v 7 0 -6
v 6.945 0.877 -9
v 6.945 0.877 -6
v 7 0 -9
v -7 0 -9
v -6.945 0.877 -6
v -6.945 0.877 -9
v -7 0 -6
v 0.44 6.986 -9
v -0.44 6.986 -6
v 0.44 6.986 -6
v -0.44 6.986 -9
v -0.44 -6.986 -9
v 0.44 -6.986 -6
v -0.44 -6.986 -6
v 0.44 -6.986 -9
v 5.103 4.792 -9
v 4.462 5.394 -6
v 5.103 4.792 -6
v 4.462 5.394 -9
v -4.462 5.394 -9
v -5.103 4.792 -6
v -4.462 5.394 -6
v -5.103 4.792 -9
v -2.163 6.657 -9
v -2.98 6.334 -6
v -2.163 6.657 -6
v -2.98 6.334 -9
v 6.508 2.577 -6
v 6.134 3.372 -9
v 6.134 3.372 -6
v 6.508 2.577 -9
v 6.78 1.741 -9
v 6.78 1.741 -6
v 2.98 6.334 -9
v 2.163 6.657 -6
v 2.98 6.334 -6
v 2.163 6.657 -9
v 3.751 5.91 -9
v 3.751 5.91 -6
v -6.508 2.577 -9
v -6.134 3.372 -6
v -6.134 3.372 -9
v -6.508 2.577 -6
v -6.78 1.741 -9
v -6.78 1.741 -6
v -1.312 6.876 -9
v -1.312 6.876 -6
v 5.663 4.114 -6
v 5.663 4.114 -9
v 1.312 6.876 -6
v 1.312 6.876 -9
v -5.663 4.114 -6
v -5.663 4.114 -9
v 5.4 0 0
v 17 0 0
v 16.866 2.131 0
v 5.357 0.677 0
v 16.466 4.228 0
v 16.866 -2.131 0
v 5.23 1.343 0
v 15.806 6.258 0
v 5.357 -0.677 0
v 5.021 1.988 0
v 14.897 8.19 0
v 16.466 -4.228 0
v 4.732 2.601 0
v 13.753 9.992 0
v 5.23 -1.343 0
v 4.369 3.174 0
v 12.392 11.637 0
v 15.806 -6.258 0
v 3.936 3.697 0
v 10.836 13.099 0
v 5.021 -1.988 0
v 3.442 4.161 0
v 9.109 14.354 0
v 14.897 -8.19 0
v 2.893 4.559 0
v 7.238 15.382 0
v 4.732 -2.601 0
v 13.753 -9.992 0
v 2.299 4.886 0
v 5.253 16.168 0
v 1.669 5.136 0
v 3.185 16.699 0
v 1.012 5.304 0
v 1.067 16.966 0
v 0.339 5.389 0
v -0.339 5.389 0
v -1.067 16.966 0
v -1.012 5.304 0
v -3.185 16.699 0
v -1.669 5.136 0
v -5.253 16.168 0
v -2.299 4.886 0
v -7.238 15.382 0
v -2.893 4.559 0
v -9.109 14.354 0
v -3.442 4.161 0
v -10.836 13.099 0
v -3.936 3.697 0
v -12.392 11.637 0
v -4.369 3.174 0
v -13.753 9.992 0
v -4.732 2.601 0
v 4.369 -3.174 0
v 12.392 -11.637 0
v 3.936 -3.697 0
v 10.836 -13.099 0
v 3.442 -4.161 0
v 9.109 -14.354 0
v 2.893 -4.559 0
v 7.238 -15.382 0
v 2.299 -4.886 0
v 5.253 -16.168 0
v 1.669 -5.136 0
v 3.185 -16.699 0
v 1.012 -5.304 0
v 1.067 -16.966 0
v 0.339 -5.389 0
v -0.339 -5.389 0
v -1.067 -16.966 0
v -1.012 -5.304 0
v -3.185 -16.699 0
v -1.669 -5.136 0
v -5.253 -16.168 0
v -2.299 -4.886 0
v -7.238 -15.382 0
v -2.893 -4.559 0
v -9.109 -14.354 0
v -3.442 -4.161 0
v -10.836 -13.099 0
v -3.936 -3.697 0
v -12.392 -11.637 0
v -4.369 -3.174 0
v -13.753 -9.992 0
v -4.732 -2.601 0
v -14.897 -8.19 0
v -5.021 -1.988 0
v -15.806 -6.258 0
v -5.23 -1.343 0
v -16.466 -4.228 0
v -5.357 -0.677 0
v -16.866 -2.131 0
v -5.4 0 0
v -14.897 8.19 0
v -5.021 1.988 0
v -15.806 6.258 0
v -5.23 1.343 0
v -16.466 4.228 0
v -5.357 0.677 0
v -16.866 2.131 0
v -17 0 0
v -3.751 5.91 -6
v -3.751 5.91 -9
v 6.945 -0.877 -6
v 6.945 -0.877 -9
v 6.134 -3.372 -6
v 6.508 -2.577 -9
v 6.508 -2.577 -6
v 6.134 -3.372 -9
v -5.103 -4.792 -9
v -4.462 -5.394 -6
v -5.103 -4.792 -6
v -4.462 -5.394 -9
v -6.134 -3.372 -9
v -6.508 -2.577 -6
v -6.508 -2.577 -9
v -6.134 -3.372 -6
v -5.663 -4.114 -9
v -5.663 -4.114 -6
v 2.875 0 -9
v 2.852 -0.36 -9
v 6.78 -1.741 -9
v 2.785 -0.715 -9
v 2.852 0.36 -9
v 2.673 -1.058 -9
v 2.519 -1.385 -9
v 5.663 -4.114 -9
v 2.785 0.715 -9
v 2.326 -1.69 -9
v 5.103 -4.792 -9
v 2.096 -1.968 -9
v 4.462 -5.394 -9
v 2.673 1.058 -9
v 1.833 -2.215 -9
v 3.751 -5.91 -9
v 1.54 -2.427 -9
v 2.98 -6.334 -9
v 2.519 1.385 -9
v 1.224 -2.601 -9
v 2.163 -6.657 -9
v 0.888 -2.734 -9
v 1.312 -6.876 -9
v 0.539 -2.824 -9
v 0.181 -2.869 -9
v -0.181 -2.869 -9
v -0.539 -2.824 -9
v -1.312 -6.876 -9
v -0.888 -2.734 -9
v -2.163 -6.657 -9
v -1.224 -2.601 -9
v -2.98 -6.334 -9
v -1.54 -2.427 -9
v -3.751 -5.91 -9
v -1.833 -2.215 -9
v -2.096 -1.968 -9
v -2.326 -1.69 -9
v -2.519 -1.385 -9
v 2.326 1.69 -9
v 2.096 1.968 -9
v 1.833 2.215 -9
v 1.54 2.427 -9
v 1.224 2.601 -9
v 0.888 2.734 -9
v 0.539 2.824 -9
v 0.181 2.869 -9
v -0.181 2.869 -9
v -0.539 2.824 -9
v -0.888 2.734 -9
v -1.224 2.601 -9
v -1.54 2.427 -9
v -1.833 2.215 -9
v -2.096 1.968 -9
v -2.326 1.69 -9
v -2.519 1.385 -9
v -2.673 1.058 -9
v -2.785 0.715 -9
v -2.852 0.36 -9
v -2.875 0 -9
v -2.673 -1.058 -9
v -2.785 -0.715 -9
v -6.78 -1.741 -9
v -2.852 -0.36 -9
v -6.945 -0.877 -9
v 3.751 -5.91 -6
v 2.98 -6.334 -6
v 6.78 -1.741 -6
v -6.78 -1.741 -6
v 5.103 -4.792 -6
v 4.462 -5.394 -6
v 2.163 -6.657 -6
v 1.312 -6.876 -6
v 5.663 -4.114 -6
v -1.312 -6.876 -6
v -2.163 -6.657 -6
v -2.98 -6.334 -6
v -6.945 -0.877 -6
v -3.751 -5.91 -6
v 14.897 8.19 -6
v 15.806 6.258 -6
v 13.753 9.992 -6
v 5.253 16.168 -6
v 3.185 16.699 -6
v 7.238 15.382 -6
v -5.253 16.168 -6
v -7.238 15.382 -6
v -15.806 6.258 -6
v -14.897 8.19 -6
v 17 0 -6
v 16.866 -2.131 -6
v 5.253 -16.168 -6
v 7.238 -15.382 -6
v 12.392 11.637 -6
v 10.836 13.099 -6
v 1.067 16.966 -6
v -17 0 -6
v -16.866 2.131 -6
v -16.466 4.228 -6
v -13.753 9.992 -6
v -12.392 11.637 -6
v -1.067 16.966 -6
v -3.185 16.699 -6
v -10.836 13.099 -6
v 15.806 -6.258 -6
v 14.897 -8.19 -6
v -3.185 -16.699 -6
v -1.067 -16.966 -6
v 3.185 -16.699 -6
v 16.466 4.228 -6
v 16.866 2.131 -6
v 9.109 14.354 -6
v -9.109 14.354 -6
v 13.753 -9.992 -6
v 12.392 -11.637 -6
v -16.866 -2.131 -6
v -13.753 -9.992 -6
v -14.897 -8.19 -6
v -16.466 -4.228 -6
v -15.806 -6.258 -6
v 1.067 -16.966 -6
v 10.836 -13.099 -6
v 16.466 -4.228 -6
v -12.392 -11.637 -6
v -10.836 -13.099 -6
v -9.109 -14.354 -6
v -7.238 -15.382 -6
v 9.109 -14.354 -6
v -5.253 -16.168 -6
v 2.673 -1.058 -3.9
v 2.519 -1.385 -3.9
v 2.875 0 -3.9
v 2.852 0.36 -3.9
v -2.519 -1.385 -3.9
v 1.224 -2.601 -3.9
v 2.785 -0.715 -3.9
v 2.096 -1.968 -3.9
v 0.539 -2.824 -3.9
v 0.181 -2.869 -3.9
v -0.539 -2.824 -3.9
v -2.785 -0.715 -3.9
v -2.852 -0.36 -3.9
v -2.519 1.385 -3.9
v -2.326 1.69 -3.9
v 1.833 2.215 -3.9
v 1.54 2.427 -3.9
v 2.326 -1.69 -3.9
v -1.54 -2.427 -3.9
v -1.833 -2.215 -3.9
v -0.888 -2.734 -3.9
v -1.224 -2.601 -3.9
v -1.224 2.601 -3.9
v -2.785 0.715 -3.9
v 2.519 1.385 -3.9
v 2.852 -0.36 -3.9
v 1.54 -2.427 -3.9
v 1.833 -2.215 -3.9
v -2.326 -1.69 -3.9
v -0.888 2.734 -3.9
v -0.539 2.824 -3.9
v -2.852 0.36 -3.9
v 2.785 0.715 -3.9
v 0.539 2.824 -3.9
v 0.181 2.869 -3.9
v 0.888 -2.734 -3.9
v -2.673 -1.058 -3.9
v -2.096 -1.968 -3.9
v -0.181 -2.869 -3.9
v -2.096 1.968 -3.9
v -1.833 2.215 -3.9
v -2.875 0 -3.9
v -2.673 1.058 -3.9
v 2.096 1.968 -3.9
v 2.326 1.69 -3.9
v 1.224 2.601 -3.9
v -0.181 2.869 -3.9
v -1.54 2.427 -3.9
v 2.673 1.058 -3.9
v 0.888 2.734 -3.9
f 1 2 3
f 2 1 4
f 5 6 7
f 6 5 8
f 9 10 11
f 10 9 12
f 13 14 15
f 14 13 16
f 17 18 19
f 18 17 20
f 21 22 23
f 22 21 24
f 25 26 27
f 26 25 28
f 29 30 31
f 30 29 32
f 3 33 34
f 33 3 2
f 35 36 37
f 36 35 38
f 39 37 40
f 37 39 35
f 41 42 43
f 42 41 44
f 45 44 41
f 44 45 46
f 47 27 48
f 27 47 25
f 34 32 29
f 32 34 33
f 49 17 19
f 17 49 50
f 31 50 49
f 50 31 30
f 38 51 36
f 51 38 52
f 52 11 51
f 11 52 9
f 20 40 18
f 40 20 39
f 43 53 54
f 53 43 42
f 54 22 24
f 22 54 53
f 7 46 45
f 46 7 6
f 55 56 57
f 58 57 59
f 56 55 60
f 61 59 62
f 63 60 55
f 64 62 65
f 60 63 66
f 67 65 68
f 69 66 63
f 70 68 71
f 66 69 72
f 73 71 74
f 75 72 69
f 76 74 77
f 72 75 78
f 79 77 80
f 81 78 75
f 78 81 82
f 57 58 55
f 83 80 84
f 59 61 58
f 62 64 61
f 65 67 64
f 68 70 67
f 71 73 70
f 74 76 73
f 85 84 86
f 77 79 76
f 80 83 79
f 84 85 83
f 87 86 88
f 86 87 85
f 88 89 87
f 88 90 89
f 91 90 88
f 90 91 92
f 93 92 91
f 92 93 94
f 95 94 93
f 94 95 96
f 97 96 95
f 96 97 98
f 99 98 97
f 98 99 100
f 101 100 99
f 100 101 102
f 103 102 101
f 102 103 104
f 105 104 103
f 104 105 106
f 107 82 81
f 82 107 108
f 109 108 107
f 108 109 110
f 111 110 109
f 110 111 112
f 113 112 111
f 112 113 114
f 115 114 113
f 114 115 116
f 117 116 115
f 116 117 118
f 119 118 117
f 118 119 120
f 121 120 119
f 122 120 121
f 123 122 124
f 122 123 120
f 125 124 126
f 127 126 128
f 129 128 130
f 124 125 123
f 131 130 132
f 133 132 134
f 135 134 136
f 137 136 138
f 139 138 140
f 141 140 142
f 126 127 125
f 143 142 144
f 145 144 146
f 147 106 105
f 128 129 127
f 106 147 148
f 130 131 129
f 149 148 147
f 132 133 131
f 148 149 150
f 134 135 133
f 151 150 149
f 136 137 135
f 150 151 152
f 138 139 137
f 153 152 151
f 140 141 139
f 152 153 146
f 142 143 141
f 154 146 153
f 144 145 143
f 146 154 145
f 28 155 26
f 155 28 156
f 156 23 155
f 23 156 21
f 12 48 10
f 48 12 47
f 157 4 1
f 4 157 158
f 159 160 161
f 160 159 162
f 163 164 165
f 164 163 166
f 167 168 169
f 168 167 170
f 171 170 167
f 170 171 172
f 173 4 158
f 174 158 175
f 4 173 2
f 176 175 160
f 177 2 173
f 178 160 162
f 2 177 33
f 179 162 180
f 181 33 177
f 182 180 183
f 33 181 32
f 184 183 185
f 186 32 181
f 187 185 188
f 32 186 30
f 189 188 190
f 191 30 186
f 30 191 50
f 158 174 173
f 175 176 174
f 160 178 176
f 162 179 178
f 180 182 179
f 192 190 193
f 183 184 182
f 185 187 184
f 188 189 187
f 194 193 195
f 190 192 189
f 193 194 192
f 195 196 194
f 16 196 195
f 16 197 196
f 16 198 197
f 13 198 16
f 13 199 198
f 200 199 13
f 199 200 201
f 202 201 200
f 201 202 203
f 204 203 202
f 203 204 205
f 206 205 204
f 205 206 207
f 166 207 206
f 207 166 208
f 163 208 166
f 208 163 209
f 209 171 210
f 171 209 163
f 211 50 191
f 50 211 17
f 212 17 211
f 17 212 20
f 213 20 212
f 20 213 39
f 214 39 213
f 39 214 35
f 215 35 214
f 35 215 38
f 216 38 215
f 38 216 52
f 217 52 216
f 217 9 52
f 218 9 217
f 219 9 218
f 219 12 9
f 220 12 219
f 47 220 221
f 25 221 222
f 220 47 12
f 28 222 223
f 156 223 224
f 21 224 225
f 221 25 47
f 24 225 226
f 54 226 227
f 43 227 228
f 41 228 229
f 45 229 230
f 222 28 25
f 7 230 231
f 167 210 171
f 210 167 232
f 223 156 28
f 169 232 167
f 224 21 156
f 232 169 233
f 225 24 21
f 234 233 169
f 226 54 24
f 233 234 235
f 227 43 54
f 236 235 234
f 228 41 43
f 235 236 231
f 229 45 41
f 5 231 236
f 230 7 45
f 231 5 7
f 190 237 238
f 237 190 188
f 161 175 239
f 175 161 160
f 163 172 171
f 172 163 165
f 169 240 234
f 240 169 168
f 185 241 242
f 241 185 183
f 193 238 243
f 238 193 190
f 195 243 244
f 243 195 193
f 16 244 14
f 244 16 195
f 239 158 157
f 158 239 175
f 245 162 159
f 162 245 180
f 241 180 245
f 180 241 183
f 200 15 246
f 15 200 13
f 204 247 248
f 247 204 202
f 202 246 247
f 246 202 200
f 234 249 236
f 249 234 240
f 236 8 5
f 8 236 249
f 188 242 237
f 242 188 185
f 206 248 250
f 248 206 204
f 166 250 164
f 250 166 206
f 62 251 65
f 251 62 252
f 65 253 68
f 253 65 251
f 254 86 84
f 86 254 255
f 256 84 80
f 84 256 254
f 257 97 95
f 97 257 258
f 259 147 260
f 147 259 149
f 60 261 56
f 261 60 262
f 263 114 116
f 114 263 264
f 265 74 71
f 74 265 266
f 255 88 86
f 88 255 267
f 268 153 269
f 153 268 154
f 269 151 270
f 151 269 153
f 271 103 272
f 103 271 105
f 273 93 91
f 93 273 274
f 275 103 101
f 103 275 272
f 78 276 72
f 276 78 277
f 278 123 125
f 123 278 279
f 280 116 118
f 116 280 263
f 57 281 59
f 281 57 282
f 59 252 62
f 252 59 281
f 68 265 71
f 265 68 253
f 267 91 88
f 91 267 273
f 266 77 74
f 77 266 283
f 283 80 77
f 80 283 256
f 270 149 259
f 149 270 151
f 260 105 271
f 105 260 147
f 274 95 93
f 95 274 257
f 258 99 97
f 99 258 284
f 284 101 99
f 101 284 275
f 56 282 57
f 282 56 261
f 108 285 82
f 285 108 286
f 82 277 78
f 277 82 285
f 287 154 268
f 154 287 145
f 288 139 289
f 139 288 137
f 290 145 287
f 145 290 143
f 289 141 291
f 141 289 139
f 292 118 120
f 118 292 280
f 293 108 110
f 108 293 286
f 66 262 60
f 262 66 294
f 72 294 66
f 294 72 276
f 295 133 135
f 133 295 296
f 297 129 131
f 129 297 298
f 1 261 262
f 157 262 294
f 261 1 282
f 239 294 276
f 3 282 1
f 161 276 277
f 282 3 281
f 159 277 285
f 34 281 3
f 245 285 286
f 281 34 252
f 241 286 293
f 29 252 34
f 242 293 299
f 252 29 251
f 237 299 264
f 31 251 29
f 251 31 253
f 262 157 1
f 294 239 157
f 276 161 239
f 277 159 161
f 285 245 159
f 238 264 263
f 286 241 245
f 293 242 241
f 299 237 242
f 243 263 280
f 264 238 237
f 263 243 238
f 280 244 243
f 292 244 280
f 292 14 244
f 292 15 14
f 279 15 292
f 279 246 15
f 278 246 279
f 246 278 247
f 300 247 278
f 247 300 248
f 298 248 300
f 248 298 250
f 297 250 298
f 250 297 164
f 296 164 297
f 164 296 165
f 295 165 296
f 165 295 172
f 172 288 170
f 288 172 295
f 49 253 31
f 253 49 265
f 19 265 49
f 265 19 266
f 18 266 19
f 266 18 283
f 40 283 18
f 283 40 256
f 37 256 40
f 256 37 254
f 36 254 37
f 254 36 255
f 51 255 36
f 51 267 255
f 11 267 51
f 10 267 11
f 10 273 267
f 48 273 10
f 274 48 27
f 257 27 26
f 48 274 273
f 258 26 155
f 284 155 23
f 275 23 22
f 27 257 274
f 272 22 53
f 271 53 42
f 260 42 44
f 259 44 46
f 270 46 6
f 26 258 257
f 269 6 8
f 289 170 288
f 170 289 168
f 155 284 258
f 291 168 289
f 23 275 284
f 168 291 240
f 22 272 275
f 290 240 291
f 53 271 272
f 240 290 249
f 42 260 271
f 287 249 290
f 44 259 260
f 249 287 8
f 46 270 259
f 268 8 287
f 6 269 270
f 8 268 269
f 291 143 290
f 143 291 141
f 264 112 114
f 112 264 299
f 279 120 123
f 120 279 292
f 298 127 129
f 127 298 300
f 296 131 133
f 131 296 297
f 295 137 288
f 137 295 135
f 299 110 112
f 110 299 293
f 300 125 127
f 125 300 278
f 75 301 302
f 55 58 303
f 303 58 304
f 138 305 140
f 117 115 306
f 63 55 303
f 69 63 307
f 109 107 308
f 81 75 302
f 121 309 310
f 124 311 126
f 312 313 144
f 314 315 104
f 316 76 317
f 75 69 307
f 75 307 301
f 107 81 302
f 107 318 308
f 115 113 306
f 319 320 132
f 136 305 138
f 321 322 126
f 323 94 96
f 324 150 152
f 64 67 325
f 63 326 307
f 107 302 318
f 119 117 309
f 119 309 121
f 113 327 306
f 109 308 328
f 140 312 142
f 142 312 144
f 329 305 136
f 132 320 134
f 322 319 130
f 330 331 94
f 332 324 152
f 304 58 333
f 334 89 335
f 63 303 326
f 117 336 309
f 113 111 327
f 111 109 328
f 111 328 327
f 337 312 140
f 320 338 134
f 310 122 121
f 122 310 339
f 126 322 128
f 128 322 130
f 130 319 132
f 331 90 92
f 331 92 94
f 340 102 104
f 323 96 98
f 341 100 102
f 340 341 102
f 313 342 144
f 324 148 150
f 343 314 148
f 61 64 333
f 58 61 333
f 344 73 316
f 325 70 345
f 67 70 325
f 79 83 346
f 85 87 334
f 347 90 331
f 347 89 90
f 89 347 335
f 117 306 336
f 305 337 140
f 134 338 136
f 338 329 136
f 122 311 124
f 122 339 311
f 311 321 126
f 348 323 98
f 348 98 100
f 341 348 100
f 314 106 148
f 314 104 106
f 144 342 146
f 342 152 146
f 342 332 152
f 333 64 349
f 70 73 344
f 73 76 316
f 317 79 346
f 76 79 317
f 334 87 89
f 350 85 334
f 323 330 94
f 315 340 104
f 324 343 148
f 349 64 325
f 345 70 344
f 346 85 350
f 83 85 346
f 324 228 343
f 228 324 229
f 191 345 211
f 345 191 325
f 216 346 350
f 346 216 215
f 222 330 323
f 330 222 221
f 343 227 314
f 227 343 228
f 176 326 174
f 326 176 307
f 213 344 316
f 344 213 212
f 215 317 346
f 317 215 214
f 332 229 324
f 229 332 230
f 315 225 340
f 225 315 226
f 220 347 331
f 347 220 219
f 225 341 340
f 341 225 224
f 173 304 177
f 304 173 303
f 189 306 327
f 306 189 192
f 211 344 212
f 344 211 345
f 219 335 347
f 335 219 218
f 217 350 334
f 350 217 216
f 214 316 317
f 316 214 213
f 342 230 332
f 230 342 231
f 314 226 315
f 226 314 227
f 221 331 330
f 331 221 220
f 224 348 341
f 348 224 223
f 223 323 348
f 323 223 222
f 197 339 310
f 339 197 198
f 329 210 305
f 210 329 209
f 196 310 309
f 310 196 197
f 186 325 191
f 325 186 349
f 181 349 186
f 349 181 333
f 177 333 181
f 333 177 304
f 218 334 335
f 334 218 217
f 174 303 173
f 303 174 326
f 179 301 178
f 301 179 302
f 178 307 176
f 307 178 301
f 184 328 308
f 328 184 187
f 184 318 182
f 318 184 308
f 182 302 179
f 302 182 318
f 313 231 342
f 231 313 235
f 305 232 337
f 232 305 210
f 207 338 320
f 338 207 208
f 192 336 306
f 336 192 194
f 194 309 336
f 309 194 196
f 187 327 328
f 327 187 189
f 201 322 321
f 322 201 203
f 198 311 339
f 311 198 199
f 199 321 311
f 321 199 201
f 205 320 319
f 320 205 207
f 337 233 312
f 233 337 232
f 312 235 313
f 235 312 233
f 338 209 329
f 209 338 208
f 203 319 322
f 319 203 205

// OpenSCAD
$fn = 50;


difference() {
	union() {
		translate(v = [0, 0, -9.0000000000]) {
			cylinder(h = 9, r = 7.0000000000);
		}
		translate(v = [0, 0, -6.0000000000]) {
			cylinder(h = 6, r = 17.0000000000);
		}
	}
	union() {
		translate(v = [0, 0, 0]) {
			rotate(a = [0, 0, 0]) {
				difference() {
					union() {
						#translate(v = [0, 0, -9.0000000000]) {
							cylinder(h = 9, r = 2.6000000000);
						}
						#translate(v = [0, 0, -3.9000000000]) {
							cylinder(h = 3.9000000000, r1 = 2.8750000000, r2 = 5.4000000000);
						}
						#translate(v = [0, 0, -9.0000000000]) {
							cylinder(h = 9, r = 2.8750000000);
						}
						#translate(v = [0, 0, -9.0000000000]) {
							cylinder(h = 9, r = 2.6000000000);
						}
					}
					union();
				}
			}
		}
	}
}
